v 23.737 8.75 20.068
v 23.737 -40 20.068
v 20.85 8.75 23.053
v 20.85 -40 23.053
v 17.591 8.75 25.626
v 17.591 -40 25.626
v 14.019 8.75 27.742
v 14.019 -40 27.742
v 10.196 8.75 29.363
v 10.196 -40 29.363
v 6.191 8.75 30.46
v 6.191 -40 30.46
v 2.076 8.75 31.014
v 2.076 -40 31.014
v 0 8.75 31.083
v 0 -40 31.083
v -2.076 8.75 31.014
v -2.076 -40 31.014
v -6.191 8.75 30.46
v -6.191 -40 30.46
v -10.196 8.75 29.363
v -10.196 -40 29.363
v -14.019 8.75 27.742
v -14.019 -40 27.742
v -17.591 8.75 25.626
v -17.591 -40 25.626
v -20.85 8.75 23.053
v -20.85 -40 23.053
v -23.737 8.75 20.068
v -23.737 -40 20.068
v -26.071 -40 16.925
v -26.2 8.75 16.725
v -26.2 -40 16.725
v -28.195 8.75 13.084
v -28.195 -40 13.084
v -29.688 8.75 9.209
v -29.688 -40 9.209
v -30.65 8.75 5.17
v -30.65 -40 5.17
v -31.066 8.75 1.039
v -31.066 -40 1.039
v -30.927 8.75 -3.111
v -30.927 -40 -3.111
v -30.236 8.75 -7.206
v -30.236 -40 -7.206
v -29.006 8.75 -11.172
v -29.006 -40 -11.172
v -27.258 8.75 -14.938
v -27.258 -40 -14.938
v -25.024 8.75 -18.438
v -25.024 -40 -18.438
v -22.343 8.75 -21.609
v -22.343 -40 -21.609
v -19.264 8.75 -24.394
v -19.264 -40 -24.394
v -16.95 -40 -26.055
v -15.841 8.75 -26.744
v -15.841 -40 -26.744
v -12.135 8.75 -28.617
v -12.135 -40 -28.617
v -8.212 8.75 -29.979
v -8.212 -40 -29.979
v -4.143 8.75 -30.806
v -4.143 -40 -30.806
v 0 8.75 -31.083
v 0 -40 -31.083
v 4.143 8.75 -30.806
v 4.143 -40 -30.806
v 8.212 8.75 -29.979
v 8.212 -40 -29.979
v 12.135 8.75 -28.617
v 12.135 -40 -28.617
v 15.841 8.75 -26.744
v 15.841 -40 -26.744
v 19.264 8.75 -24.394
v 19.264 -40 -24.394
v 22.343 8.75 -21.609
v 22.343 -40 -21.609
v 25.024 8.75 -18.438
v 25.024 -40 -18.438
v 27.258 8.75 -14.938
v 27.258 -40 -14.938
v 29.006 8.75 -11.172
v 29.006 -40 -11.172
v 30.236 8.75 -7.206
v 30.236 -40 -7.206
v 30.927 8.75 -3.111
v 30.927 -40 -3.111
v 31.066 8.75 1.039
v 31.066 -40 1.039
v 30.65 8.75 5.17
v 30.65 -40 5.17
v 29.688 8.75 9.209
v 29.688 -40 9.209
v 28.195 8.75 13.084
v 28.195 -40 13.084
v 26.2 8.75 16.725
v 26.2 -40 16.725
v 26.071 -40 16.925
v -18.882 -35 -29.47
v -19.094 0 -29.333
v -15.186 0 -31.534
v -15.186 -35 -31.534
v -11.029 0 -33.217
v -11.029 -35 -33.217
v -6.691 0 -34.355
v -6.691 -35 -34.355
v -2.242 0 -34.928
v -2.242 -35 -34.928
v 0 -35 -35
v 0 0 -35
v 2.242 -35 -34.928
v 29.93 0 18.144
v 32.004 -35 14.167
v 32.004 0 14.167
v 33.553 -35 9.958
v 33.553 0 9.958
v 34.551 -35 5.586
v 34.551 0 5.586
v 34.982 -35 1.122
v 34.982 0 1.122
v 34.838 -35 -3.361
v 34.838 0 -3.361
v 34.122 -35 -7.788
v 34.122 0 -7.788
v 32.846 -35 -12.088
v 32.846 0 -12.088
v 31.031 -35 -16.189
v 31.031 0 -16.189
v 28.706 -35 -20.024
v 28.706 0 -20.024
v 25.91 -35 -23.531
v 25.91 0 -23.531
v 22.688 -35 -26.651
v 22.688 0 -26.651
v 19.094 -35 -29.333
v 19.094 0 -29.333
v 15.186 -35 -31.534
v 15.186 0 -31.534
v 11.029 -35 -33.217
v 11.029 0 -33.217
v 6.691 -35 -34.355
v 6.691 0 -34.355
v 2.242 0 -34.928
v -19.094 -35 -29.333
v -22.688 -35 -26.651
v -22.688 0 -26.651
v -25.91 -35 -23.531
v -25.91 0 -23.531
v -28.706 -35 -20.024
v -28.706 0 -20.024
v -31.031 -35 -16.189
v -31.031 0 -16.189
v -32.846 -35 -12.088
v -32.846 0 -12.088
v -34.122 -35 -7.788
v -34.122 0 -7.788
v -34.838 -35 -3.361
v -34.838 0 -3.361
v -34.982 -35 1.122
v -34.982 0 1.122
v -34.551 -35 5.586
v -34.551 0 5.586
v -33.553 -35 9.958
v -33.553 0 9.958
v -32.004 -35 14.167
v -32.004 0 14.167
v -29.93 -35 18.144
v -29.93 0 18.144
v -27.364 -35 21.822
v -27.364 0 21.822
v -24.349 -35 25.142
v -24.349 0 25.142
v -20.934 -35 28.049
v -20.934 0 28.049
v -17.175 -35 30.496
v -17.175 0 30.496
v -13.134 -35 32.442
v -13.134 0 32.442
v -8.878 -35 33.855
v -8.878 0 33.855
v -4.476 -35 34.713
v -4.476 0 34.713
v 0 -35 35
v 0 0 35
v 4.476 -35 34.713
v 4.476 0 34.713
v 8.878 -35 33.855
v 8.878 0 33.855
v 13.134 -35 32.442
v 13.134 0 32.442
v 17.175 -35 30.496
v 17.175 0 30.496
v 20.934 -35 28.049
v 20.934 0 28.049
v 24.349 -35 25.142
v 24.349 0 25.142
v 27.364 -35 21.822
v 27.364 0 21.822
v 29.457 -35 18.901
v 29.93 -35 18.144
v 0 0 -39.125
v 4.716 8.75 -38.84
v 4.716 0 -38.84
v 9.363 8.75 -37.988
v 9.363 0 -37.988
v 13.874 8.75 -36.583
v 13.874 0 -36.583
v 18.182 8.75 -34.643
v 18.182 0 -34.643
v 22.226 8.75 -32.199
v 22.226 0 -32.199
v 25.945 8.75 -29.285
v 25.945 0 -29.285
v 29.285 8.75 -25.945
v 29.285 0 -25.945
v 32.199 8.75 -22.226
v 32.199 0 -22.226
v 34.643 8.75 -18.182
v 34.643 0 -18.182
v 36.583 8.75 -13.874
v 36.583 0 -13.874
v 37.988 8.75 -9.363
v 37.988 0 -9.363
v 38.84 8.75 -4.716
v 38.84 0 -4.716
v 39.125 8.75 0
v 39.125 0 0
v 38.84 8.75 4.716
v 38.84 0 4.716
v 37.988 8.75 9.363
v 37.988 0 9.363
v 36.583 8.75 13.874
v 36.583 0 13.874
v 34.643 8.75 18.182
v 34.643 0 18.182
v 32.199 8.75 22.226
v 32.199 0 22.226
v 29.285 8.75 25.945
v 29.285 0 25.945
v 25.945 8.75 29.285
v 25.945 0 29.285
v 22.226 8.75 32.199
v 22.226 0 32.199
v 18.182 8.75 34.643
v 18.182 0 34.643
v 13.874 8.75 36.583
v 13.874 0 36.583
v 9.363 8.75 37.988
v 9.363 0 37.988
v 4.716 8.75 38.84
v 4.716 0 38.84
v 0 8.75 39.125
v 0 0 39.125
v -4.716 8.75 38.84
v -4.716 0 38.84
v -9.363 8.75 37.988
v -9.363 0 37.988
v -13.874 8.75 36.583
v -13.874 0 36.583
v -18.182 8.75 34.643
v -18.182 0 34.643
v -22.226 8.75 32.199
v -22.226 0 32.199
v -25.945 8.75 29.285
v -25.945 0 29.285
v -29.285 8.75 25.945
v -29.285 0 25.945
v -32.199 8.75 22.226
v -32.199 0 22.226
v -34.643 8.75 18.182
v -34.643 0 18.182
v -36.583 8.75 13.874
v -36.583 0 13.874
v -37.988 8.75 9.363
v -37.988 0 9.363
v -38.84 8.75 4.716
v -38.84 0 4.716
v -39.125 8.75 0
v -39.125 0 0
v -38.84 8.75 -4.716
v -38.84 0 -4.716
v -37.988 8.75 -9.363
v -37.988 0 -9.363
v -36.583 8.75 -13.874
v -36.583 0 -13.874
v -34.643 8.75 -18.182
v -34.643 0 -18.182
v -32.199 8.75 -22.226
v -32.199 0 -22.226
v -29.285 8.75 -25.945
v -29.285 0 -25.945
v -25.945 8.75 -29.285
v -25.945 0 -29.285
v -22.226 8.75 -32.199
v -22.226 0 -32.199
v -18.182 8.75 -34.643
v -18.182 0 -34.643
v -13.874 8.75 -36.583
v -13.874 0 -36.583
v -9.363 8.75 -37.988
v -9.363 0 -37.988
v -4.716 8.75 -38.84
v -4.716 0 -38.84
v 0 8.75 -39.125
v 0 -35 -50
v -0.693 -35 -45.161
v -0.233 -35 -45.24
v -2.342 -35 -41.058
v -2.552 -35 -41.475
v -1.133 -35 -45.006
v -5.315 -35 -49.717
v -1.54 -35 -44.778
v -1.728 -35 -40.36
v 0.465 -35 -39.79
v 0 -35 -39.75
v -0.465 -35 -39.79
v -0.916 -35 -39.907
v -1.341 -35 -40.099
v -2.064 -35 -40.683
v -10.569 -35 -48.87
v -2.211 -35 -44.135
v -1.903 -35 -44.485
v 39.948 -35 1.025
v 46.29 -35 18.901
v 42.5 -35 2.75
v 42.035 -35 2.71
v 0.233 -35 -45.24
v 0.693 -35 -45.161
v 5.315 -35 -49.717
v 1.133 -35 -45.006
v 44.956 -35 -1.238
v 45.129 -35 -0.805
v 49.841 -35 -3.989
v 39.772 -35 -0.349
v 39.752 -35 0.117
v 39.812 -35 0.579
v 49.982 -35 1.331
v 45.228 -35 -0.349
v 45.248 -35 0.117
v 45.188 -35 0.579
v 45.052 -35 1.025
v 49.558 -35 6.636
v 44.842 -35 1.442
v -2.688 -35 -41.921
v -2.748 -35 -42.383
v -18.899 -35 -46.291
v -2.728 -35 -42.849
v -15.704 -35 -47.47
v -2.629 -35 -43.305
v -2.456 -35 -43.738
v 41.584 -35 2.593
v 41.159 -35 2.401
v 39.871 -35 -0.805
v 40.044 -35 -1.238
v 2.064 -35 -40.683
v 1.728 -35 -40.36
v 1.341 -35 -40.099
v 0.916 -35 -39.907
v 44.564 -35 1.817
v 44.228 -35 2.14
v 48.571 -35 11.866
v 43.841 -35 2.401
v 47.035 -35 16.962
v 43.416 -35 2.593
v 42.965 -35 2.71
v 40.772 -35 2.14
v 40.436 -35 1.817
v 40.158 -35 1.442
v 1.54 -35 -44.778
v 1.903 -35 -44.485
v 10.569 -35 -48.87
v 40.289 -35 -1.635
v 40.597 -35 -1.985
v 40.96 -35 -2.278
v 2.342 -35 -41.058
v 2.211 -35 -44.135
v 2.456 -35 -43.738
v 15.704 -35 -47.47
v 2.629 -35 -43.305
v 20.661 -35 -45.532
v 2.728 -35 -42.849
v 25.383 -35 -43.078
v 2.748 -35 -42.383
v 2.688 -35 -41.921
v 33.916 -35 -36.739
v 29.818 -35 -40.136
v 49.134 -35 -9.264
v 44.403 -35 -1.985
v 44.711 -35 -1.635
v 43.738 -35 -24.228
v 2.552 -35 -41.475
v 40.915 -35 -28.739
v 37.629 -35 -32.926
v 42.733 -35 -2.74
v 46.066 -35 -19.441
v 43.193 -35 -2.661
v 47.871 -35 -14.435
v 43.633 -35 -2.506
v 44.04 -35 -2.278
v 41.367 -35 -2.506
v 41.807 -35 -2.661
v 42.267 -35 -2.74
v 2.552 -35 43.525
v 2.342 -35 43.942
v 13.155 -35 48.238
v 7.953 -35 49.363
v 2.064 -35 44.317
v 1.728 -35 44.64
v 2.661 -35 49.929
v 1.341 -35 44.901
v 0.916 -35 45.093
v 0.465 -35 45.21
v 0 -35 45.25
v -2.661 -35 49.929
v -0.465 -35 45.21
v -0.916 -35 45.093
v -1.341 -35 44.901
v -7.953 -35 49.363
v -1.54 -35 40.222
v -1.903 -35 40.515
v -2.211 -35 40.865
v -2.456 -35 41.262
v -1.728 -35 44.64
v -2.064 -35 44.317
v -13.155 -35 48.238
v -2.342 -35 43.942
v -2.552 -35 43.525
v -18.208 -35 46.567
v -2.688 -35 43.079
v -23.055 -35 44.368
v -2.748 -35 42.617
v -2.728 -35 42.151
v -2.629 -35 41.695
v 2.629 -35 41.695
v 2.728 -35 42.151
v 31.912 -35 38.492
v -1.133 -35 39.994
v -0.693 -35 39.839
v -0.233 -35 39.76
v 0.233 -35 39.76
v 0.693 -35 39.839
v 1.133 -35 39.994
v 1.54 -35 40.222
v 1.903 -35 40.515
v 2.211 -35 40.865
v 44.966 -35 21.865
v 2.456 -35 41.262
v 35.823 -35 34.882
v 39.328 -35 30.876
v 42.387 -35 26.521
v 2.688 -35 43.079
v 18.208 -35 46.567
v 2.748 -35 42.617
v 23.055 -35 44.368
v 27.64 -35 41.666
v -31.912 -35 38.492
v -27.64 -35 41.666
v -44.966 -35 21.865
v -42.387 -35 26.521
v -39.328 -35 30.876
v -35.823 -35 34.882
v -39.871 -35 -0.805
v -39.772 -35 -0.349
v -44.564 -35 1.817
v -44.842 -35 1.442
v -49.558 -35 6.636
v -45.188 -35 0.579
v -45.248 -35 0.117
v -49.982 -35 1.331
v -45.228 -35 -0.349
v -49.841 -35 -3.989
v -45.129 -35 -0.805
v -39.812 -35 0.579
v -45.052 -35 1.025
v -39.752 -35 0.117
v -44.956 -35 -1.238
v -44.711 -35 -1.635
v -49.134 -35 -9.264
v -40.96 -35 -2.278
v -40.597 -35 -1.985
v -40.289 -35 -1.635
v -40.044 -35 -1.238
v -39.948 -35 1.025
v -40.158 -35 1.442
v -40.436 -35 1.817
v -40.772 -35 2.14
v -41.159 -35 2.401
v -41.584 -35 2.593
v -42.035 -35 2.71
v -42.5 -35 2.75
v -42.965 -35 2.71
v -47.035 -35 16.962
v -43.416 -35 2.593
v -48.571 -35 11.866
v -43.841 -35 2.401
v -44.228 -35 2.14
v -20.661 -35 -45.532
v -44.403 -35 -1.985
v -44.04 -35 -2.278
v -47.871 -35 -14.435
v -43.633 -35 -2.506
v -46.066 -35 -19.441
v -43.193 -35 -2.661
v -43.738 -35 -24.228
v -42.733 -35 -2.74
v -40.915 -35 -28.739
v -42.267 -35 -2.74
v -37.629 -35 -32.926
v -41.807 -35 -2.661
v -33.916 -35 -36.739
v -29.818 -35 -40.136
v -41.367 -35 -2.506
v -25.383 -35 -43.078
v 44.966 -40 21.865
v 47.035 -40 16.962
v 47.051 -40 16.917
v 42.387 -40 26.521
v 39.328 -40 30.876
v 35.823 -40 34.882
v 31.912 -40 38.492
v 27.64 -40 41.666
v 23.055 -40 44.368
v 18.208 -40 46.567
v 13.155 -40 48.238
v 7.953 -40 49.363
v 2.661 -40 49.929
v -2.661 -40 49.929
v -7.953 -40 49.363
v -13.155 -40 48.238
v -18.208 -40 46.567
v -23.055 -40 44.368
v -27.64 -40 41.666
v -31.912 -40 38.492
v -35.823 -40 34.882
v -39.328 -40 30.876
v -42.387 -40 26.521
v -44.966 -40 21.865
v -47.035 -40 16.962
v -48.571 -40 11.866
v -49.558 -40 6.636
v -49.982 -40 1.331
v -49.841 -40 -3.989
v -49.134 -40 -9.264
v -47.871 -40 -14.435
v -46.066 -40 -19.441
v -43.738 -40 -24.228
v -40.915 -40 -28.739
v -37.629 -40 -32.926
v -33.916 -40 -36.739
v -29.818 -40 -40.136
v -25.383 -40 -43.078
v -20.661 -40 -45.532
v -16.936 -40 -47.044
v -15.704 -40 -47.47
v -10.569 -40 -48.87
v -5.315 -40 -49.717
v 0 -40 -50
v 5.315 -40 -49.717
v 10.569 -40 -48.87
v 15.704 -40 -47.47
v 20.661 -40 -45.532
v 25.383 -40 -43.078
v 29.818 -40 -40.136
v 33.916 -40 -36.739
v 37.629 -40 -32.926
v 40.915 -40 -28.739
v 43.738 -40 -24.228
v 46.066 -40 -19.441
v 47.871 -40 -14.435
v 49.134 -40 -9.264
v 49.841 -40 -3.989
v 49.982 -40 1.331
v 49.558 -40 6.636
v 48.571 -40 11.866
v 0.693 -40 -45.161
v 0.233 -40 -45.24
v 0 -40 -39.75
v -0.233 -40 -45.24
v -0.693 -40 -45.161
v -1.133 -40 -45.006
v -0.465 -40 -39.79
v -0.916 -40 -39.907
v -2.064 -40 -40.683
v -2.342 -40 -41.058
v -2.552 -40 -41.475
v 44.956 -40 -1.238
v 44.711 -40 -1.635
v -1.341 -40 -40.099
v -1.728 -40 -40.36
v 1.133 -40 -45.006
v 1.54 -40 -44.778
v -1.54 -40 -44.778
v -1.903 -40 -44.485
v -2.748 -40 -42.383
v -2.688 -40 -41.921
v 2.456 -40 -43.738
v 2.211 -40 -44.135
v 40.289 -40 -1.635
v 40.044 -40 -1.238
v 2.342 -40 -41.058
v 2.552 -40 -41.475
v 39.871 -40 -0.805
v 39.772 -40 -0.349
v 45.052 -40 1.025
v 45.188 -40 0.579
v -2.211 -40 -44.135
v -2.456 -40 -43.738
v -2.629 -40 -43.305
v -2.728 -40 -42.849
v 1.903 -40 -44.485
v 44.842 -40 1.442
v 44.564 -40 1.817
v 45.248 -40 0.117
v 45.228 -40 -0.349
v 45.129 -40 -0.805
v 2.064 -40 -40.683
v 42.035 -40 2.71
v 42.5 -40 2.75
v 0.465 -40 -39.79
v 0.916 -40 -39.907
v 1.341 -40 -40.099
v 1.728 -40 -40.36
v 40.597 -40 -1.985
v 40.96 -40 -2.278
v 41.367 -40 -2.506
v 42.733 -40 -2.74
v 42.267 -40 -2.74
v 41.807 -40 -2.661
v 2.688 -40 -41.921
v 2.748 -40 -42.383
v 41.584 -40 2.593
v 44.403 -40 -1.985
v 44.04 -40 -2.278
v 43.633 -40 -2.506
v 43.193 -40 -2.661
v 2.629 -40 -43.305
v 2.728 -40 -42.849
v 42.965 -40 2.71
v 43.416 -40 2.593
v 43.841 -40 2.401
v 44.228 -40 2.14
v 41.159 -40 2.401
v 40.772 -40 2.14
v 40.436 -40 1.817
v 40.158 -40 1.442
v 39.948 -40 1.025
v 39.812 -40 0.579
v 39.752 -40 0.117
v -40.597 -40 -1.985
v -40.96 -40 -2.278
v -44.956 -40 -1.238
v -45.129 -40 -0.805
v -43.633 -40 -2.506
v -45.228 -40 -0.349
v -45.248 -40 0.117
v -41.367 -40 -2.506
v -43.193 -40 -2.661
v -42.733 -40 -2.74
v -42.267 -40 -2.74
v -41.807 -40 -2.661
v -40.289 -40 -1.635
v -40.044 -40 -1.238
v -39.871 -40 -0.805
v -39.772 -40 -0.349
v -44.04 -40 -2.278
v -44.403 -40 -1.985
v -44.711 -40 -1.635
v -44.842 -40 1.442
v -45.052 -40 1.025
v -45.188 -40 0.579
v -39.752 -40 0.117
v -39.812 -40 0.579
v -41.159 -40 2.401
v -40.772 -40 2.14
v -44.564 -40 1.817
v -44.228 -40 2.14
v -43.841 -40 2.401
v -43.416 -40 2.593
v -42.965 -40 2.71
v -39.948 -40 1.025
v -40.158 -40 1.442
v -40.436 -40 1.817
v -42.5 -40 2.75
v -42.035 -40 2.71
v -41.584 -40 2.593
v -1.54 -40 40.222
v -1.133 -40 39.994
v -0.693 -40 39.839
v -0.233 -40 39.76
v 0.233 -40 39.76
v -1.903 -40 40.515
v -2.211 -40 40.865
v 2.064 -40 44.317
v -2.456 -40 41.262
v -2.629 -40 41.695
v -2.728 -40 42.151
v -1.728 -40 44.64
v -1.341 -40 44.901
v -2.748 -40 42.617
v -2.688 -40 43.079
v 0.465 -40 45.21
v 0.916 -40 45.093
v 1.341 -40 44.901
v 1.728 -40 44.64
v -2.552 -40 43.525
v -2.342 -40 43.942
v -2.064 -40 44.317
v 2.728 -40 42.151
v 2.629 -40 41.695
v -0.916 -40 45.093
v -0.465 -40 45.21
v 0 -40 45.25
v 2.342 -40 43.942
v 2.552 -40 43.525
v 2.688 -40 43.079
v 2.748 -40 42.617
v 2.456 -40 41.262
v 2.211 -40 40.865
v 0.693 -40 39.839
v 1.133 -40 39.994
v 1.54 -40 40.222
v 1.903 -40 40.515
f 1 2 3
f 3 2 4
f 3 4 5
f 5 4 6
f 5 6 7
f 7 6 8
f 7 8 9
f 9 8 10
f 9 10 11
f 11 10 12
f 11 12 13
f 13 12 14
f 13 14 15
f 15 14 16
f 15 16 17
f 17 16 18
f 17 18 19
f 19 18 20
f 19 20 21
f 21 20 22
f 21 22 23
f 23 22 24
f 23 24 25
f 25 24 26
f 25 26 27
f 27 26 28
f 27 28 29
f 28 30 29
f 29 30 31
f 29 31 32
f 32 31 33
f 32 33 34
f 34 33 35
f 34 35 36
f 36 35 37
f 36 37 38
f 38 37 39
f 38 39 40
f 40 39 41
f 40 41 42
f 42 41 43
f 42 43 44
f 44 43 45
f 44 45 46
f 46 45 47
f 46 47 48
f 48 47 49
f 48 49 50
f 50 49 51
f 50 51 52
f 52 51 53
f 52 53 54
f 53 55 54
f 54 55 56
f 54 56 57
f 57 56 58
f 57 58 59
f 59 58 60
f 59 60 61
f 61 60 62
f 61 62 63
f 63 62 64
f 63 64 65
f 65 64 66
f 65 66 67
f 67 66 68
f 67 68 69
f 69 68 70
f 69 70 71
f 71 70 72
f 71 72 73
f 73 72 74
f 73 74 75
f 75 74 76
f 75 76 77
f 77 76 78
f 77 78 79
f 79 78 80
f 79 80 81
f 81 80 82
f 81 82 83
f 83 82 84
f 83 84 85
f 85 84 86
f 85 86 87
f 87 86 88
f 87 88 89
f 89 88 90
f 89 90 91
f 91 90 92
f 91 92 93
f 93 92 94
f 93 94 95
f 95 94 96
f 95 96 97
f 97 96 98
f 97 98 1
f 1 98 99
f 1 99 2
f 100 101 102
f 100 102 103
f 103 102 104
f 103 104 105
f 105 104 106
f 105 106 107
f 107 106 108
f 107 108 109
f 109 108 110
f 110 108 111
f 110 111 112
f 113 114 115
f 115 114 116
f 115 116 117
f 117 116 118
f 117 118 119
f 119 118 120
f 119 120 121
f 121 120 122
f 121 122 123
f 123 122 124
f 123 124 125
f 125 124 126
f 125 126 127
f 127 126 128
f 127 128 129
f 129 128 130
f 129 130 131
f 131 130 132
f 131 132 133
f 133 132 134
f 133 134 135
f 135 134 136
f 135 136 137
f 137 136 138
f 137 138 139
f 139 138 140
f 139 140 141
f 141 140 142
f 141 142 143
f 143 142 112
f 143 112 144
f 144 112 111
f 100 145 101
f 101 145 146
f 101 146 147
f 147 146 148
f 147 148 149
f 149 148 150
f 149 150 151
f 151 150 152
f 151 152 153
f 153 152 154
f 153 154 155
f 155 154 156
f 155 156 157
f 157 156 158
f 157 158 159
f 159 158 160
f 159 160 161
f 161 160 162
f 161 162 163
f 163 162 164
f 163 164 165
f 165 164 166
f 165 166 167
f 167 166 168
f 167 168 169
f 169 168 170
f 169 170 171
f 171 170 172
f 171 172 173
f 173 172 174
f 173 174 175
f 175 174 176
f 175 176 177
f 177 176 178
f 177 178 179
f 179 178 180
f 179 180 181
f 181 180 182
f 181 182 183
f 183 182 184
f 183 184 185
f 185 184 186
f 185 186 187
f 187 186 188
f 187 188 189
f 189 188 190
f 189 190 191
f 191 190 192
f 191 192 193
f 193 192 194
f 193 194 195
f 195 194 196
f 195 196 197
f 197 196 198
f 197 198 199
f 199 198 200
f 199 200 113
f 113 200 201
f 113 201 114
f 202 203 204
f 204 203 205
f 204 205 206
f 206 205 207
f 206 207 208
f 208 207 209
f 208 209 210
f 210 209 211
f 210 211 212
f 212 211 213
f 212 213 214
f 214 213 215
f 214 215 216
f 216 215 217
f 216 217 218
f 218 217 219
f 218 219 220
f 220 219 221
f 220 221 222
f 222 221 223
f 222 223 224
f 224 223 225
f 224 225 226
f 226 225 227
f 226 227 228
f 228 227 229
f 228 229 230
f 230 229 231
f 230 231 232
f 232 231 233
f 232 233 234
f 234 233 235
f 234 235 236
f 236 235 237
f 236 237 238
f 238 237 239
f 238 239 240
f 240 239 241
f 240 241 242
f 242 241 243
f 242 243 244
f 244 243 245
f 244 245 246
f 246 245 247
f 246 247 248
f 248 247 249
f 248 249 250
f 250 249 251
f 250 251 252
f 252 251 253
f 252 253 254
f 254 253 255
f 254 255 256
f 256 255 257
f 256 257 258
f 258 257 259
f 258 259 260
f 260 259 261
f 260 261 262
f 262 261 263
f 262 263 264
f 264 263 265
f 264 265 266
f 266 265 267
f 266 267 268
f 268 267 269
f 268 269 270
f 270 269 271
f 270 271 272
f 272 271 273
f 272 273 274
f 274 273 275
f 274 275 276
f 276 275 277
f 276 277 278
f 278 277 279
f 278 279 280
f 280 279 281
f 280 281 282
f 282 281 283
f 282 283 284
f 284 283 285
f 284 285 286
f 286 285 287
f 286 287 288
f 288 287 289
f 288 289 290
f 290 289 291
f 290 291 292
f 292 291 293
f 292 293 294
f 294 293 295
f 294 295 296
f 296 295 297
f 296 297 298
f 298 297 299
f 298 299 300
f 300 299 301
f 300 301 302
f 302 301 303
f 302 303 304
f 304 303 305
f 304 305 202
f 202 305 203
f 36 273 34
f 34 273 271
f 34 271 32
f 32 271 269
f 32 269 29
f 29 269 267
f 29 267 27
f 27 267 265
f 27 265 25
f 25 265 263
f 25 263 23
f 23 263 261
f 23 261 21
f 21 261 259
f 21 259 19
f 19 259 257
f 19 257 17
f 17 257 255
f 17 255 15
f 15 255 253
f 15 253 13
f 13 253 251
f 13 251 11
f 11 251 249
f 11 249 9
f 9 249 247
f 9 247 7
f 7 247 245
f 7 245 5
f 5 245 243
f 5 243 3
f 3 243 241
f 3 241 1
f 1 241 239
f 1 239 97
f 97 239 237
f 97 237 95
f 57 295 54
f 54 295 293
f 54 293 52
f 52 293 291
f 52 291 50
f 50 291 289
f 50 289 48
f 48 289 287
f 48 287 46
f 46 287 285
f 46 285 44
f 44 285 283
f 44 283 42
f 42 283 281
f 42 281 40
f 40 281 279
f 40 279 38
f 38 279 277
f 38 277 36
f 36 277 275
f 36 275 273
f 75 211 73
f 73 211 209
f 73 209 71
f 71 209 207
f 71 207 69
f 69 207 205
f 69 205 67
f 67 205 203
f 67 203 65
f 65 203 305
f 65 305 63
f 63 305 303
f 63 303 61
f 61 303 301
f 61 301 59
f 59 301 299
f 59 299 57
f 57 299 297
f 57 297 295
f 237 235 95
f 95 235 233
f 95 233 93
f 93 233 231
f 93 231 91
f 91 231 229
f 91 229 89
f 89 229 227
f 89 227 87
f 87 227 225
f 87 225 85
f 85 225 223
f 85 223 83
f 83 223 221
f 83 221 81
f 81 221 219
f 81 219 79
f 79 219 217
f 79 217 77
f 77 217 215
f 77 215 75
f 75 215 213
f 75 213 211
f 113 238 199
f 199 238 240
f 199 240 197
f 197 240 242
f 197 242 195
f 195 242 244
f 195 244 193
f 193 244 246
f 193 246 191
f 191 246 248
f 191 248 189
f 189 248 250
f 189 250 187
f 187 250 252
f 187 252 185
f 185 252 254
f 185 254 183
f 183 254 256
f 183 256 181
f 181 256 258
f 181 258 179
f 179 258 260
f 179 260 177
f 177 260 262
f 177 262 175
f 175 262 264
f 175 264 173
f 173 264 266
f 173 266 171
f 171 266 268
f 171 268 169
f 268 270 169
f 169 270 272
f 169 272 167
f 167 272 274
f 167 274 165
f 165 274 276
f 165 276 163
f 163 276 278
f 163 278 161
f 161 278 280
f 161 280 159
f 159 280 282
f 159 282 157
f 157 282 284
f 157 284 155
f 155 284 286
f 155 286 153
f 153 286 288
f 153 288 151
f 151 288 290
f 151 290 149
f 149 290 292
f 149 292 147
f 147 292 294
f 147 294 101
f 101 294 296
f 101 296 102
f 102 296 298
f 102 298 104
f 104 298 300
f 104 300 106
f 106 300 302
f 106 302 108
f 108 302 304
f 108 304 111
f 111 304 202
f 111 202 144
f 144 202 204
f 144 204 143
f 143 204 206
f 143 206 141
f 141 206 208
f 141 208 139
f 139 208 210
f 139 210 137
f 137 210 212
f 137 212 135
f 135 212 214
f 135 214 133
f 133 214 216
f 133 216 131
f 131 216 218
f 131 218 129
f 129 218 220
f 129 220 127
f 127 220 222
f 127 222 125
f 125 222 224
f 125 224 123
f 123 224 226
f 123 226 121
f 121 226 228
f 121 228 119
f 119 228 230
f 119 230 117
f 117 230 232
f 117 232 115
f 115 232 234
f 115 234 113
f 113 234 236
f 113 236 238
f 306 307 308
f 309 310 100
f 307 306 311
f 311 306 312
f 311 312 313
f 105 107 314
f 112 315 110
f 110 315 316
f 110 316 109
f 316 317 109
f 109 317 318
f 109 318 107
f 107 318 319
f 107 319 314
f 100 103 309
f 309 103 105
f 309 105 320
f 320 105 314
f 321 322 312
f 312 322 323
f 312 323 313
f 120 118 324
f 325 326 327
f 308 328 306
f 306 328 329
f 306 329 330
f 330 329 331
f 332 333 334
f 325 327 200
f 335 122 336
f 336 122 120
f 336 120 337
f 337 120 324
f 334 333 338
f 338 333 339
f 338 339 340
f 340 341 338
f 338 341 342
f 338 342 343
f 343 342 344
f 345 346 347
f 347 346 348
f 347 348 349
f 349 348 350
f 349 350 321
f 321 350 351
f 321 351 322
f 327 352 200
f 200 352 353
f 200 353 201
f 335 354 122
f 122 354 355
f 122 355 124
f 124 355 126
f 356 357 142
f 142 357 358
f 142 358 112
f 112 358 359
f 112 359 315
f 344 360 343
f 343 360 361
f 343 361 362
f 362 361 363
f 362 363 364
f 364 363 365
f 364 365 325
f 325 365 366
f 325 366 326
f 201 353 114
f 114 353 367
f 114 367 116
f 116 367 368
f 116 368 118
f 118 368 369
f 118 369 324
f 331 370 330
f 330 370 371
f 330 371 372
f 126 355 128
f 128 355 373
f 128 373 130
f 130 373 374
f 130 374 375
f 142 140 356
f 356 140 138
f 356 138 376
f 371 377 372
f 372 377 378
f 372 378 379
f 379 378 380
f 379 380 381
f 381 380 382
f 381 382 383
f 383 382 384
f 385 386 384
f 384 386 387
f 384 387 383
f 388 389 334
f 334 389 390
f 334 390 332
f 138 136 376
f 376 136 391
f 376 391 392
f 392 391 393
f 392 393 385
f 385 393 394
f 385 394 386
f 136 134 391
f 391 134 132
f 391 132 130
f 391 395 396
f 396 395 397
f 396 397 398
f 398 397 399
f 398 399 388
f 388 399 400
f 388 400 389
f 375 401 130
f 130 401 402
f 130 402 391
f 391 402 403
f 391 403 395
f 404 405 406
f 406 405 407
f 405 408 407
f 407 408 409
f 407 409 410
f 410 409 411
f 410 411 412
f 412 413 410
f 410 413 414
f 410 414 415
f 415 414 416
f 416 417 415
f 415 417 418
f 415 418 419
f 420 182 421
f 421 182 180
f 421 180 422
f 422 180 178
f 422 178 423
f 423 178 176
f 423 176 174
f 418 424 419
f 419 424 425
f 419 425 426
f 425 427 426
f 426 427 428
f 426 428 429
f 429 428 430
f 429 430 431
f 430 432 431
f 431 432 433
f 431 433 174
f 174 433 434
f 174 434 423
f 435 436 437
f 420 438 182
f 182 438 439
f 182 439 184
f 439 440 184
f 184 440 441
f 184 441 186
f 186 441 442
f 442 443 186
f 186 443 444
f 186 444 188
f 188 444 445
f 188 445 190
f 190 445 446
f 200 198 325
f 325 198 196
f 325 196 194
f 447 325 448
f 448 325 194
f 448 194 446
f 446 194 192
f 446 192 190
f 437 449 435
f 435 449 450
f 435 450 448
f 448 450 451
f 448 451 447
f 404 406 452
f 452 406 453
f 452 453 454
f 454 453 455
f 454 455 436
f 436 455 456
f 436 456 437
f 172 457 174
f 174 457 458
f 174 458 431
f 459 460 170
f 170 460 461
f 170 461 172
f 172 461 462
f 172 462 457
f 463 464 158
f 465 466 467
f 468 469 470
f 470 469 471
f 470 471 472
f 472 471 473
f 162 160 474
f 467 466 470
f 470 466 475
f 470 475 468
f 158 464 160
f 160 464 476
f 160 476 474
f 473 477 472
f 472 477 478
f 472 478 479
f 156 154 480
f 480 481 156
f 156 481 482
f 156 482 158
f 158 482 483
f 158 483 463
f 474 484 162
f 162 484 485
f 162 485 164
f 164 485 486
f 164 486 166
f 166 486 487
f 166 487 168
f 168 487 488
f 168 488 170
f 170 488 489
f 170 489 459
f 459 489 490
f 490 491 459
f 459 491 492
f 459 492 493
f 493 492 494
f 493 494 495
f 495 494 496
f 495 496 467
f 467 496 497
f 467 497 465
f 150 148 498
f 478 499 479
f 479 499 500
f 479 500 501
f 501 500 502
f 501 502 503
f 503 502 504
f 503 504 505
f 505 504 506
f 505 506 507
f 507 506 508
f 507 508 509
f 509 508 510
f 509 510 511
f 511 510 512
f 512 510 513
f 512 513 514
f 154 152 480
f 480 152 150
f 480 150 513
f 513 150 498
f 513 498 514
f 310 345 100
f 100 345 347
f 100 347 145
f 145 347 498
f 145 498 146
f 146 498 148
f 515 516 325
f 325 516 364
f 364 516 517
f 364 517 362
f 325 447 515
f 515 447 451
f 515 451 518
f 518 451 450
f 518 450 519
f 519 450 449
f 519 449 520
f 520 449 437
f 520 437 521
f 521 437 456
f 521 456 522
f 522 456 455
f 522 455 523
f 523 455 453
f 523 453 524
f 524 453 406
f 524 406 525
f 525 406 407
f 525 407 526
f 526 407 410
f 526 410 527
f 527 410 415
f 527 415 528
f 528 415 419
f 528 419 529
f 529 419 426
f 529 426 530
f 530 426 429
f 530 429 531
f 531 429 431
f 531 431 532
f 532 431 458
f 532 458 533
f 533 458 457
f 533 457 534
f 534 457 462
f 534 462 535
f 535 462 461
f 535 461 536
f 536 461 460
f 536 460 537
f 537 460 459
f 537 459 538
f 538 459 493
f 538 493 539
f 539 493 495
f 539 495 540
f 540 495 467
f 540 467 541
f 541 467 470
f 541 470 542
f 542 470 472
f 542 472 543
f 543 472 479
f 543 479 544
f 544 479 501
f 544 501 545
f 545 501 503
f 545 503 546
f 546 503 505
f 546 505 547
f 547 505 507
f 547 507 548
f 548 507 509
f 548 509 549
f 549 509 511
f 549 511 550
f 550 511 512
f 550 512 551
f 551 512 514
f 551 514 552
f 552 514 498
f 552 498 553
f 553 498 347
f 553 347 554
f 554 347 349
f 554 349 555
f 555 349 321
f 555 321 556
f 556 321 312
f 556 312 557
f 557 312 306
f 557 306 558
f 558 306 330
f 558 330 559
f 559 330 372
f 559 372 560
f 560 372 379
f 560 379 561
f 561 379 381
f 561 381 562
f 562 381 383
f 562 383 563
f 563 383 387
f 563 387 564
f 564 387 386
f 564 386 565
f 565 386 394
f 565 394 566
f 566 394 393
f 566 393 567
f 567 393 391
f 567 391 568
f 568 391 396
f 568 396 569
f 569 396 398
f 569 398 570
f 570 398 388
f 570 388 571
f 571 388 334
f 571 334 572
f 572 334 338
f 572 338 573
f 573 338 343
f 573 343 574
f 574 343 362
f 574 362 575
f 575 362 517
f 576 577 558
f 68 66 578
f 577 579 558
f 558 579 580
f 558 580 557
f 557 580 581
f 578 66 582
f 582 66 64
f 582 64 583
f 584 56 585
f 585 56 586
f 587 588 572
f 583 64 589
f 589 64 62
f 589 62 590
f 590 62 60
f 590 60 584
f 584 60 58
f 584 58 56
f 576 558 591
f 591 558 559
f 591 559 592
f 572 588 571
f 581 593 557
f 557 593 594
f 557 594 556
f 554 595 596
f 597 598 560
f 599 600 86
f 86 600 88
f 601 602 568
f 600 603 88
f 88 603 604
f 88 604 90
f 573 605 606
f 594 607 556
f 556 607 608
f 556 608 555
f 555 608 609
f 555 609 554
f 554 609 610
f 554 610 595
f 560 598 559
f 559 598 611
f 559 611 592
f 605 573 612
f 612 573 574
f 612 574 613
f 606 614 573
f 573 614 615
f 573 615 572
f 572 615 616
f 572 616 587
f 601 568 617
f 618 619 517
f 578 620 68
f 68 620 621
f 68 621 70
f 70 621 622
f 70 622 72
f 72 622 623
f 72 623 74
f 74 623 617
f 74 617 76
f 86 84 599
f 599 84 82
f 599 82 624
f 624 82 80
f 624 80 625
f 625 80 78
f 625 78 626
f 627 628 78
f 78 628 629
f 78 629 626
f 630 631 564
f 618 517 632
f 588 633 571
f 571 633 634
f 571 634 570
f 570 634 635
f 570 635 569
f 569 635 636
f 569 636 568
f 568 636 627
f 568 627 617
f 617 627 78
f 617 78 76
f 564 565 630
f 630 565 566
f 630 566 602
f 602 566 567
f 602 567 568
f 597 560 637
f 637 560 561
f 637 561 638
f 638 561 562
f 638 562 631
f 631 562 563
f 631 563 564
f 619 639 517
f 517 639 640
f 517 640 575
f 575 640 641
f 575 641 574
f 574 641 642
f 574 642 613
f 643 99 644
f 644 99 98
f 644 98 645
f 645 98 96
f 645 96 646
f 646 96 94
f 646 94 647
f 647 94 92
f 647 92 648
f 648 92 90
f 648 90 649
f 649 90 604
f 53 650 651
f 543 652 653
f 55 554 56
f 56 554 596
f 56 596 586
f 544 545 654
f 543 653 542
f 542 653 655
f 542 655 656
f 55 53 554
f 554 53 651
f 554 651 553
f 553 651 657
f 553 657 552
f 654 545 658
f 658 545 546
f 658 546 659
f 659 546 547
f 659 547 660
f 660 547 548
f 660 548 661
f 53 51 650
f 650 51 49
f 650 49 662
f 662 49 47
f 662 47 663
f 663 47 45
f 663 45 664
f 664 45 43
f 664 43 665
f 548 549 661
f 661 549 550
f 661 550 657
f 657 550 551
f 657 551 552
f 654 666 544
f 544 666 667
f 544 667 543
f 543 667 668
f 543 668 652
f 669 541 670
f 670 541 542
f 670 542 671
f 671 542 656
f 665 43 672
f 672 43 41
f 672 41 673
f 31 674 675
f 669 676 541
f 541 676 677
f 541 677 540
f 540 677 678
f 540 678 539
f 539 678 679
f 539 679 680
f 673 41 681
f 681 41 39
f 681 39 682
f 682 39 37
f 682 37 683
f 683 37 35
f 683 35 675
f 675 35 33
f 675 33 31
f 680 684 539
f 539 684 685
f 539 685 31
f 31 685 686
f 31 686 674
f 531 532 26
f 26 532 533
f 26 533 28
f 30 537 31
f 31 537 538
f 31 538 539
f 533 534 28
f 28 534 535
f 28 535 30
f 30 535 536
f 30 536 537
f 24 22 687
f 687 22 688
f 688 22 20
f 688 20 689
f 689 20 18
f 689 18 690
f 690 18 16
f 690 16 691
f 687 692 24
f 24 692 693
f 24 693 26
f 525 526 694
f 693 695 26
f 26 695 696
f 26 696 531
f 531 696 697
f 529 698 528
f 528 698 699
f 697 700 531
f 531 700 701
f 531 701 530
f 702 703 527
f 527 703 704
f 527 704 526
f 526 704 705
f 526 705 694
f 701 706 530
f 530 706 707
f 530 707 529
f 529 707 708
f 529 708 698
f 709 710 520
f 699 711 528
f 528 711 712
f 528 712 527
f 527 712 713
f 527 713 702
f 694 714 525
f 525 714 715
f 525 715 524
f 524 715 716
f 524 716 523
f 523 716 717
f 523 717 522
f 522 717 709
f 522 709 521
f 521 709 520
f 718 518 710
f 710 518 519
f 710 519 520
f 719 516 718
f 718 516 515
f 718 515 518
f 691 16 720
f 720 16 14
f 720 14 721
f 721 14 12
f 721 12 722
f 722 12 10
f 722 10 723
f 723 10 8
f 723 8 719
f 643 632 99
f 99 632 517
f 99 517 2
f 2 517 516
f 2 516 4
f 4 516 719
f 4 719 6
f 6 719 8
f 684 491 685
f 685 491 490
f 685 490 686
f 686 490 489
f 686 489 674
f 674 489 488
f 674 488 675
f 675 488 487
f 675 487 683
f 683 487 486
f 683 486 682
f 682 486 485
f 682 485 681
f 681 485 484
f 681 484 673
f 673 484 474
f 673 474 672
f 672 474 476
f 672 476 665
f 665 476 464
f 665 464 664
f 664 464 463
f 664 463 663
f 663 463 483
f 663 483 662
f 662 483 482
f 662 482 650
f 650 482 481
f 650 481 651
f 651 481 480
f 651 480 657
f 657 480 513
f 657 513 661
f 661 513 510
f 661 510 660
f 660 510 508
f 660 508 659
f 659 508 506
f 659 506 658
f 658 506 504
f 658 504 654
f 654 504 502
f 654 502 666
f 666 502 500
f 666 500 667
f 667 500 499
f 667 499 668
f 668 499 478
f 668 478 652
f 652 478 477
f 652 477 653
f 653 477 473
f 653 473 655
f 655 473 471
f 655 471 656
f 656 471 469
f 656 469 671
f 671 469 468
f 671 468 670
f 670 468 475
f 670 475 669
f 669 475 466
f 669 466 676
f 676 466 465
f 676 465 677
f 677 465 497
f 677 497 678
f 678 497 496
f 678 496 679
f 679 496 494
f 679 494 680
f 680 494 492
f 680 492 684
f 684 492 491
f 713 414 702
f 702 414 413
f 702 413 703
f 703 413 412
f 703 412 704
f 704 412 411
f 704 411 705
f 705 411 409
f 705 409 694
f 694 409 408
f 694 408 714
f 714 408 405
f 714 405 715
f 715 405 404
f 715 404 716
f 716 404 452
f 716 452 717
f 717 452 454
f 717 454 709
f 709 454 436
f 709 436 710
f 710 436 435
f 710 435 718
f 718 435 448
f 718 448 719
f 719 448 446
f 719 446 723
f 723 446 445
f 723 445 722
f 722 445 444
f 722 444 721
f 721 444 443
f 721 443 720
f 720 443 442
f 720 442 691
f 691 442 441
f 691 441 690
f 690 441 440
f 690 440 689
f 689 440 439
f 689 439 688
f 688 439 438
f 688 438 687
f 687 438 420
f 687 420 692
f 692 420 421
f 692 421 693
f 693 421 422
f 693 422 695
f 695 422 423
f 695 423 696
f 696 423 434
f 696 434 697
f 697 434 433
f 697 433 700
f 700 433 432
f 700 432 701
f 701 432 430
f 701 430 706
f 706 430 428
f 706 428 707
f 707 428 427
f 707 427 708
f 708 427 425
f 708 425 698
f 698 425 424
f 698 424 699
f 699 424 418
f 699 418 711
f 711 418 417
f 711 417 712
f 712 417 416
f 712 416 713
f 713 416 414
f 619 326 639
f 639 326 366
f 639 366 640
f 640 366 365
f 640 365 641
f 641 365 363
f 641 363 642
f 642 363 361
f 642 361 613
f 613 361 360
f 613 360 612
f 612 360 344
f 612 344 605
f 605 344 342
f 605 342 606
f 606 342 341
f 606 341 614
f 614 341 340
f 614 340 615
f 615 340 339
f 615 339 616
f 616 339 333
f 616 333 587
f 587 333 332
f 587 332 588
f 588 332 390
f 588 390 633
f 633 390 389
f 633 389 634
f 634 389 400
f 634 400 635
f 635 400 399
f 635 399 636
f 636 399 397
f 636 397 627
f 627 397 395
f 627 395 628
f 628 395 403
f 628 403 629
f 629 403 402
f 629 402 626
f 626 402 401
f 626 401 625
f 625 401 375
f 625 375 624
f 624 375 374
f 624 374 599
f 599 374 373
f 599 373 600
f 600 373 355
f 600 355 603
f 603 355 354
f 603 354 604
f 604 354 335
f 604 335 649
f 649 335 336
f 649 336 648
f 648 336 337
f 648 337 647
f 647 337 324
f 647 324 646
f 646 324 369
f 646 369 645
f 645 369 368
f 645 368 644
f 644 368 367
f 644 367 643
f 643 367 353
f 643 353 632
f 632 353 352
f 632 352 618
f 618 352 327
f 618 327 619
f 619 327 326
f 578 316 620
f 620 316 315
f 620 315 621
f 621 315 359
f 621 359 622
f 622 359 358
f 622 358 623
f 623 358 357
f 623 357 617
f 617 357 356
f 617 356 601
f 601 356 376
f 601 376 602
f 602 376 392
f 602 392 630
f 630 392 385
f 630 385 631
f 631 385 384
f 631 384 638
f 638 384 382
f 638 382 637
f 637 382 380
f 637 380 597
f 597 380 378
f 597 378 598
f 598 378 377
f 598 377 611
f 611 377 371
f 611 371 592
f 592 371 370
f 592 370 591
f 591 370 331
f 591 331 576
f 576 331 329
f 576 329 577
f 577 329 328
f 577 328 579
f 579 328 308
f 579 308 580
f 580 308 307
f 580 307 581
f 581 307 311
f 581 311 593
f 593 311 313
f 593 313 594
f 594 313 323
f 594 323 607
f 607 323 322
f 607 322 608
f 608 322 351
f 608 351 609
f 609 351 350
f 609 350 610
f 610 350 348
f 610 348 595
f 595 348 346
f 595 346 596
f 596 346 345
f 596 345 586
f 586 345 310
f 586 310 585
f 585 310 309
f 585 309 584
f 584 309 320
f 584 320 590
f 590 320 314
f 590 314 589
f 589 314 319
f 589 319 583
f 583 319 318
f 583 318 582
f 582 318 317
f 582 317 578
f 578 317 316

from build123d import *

# Parameters (mm, degrees)
SKETCH1_R           = 39.125
BOSS_EXTRUDE1_DEPTH = 8.75
SKETCH4_R           = 31.083201595
CUT_EXTRUDE1_DEPTH  = 9
BOSS_EXTRUDE3_START = 40
SKETCH5_R           = 35
SKETCH5_R_2         = 31.083201595
BOSS_EXTRUDE3_DEPTH = 40
SKETCH8_R           = 50
BOSS_EXTRUDE4_DEPTH = 5
SKETCH10_R          = 2.75
CUT_EXTRUDE2_DEPTH  = 5
CUT_EXTRUDE3_START  = -5
SKETCH11_R          = 31.083201595
CUT_EXTRUDE3_DEPTH  = 5


with BuildPart() as part:
    # Sketch1 → Boss-Extrude1 (new body)
    with BuildSketch(Plane(origin=(0, 0, 0), x_dir=(1, 0, 0), z_dir=(0, 1, 0))):
        with Locations(Location((0, 0, 0), (0, 0, 270))):
            Circle(SKETCH1_R)
    extrude(amount=BOSS_EXTRUDE1_DEPTH)

    # Sketch4 → Cut-Extrude1 (cut)
    with BuildSketch(Plane.XZ):
        with Locations(Location((0, 0, 0), (0, 0, 270))):
            Circle(SKETCH4_R)
    extrude(amount=-CUT_EXTRUDE1_DEPTH, mode=Mode.SUBTRACT)

    # Sketch5 → Boss-Extrude3 (add)
    with BuildSketch(Plane.XZ.offset(BOSS_EXTRUDE3_START)):
        with Locations(Location((0, 0, 0), (0, 0, 270))):
            Circle(SKETCH5_R)
        with Locations(Location((0, 0, 0), (0, 0, 270))):
            Circle(SKETCH5_R_2, mode=Mode.SUBTRACT)
    extrude(amount=-BOSS_EXTRUDE3_DEPTH)

    # Sketch8 → Boss-Extrude4 (add)
    with BuildSketch(Plane.XZ.offset(40)):
        with Locations(Location((0, 0, 0), (0, 0, 270))):
            Circle(SKETCH8_R)
    extrude(amount=-BOSS_EXTRUDE4_DEPTH)

    # Sketch10 → Cut-Extrude2 (cut)
    with BuildSketch(Plane(origin=(0, -35, 0), x_dir=(1, 0, 0), z_dir=(0, 1, 0))):
        with Locations(Location((0, 42.5, 0), (0, 0, 270))):
            Circle(SKETCH10_R)
        with Locations(Location((42.5, 0, 0), (0, 0, 270))):
            Circle(SKETCH10_R)
        with Locations(Location((0, -42.5, 0), (0, 0, 270))):
            Circle(SKETCH10_R)
        with Locations(Location((-42.5, 0, 0), (0, 0, 270))):
            Circle(SKETCH10_R)
    extrude(amount=-CUT_EXTRUDE2_DEPTH, mode=Mode.SUBTRACT)

    # Sketch11 → Cut-Extrude3 (cut)
    with BuildSketch(Plane(origin=(0, -35, 0), x_dir=(1, 0, 0), z_dir=(0, 1, 0)).offset(CUT_EXTRUDE3_START)):
        with Locations(Location((0, 0, 0), (0, 0, 270))):
            Circle(SKETCH11_R)
    extrude(amount=CUT_EXTRUDE3_DEPTH, mode=Mode.SUBTRACT)


solid = part.part
